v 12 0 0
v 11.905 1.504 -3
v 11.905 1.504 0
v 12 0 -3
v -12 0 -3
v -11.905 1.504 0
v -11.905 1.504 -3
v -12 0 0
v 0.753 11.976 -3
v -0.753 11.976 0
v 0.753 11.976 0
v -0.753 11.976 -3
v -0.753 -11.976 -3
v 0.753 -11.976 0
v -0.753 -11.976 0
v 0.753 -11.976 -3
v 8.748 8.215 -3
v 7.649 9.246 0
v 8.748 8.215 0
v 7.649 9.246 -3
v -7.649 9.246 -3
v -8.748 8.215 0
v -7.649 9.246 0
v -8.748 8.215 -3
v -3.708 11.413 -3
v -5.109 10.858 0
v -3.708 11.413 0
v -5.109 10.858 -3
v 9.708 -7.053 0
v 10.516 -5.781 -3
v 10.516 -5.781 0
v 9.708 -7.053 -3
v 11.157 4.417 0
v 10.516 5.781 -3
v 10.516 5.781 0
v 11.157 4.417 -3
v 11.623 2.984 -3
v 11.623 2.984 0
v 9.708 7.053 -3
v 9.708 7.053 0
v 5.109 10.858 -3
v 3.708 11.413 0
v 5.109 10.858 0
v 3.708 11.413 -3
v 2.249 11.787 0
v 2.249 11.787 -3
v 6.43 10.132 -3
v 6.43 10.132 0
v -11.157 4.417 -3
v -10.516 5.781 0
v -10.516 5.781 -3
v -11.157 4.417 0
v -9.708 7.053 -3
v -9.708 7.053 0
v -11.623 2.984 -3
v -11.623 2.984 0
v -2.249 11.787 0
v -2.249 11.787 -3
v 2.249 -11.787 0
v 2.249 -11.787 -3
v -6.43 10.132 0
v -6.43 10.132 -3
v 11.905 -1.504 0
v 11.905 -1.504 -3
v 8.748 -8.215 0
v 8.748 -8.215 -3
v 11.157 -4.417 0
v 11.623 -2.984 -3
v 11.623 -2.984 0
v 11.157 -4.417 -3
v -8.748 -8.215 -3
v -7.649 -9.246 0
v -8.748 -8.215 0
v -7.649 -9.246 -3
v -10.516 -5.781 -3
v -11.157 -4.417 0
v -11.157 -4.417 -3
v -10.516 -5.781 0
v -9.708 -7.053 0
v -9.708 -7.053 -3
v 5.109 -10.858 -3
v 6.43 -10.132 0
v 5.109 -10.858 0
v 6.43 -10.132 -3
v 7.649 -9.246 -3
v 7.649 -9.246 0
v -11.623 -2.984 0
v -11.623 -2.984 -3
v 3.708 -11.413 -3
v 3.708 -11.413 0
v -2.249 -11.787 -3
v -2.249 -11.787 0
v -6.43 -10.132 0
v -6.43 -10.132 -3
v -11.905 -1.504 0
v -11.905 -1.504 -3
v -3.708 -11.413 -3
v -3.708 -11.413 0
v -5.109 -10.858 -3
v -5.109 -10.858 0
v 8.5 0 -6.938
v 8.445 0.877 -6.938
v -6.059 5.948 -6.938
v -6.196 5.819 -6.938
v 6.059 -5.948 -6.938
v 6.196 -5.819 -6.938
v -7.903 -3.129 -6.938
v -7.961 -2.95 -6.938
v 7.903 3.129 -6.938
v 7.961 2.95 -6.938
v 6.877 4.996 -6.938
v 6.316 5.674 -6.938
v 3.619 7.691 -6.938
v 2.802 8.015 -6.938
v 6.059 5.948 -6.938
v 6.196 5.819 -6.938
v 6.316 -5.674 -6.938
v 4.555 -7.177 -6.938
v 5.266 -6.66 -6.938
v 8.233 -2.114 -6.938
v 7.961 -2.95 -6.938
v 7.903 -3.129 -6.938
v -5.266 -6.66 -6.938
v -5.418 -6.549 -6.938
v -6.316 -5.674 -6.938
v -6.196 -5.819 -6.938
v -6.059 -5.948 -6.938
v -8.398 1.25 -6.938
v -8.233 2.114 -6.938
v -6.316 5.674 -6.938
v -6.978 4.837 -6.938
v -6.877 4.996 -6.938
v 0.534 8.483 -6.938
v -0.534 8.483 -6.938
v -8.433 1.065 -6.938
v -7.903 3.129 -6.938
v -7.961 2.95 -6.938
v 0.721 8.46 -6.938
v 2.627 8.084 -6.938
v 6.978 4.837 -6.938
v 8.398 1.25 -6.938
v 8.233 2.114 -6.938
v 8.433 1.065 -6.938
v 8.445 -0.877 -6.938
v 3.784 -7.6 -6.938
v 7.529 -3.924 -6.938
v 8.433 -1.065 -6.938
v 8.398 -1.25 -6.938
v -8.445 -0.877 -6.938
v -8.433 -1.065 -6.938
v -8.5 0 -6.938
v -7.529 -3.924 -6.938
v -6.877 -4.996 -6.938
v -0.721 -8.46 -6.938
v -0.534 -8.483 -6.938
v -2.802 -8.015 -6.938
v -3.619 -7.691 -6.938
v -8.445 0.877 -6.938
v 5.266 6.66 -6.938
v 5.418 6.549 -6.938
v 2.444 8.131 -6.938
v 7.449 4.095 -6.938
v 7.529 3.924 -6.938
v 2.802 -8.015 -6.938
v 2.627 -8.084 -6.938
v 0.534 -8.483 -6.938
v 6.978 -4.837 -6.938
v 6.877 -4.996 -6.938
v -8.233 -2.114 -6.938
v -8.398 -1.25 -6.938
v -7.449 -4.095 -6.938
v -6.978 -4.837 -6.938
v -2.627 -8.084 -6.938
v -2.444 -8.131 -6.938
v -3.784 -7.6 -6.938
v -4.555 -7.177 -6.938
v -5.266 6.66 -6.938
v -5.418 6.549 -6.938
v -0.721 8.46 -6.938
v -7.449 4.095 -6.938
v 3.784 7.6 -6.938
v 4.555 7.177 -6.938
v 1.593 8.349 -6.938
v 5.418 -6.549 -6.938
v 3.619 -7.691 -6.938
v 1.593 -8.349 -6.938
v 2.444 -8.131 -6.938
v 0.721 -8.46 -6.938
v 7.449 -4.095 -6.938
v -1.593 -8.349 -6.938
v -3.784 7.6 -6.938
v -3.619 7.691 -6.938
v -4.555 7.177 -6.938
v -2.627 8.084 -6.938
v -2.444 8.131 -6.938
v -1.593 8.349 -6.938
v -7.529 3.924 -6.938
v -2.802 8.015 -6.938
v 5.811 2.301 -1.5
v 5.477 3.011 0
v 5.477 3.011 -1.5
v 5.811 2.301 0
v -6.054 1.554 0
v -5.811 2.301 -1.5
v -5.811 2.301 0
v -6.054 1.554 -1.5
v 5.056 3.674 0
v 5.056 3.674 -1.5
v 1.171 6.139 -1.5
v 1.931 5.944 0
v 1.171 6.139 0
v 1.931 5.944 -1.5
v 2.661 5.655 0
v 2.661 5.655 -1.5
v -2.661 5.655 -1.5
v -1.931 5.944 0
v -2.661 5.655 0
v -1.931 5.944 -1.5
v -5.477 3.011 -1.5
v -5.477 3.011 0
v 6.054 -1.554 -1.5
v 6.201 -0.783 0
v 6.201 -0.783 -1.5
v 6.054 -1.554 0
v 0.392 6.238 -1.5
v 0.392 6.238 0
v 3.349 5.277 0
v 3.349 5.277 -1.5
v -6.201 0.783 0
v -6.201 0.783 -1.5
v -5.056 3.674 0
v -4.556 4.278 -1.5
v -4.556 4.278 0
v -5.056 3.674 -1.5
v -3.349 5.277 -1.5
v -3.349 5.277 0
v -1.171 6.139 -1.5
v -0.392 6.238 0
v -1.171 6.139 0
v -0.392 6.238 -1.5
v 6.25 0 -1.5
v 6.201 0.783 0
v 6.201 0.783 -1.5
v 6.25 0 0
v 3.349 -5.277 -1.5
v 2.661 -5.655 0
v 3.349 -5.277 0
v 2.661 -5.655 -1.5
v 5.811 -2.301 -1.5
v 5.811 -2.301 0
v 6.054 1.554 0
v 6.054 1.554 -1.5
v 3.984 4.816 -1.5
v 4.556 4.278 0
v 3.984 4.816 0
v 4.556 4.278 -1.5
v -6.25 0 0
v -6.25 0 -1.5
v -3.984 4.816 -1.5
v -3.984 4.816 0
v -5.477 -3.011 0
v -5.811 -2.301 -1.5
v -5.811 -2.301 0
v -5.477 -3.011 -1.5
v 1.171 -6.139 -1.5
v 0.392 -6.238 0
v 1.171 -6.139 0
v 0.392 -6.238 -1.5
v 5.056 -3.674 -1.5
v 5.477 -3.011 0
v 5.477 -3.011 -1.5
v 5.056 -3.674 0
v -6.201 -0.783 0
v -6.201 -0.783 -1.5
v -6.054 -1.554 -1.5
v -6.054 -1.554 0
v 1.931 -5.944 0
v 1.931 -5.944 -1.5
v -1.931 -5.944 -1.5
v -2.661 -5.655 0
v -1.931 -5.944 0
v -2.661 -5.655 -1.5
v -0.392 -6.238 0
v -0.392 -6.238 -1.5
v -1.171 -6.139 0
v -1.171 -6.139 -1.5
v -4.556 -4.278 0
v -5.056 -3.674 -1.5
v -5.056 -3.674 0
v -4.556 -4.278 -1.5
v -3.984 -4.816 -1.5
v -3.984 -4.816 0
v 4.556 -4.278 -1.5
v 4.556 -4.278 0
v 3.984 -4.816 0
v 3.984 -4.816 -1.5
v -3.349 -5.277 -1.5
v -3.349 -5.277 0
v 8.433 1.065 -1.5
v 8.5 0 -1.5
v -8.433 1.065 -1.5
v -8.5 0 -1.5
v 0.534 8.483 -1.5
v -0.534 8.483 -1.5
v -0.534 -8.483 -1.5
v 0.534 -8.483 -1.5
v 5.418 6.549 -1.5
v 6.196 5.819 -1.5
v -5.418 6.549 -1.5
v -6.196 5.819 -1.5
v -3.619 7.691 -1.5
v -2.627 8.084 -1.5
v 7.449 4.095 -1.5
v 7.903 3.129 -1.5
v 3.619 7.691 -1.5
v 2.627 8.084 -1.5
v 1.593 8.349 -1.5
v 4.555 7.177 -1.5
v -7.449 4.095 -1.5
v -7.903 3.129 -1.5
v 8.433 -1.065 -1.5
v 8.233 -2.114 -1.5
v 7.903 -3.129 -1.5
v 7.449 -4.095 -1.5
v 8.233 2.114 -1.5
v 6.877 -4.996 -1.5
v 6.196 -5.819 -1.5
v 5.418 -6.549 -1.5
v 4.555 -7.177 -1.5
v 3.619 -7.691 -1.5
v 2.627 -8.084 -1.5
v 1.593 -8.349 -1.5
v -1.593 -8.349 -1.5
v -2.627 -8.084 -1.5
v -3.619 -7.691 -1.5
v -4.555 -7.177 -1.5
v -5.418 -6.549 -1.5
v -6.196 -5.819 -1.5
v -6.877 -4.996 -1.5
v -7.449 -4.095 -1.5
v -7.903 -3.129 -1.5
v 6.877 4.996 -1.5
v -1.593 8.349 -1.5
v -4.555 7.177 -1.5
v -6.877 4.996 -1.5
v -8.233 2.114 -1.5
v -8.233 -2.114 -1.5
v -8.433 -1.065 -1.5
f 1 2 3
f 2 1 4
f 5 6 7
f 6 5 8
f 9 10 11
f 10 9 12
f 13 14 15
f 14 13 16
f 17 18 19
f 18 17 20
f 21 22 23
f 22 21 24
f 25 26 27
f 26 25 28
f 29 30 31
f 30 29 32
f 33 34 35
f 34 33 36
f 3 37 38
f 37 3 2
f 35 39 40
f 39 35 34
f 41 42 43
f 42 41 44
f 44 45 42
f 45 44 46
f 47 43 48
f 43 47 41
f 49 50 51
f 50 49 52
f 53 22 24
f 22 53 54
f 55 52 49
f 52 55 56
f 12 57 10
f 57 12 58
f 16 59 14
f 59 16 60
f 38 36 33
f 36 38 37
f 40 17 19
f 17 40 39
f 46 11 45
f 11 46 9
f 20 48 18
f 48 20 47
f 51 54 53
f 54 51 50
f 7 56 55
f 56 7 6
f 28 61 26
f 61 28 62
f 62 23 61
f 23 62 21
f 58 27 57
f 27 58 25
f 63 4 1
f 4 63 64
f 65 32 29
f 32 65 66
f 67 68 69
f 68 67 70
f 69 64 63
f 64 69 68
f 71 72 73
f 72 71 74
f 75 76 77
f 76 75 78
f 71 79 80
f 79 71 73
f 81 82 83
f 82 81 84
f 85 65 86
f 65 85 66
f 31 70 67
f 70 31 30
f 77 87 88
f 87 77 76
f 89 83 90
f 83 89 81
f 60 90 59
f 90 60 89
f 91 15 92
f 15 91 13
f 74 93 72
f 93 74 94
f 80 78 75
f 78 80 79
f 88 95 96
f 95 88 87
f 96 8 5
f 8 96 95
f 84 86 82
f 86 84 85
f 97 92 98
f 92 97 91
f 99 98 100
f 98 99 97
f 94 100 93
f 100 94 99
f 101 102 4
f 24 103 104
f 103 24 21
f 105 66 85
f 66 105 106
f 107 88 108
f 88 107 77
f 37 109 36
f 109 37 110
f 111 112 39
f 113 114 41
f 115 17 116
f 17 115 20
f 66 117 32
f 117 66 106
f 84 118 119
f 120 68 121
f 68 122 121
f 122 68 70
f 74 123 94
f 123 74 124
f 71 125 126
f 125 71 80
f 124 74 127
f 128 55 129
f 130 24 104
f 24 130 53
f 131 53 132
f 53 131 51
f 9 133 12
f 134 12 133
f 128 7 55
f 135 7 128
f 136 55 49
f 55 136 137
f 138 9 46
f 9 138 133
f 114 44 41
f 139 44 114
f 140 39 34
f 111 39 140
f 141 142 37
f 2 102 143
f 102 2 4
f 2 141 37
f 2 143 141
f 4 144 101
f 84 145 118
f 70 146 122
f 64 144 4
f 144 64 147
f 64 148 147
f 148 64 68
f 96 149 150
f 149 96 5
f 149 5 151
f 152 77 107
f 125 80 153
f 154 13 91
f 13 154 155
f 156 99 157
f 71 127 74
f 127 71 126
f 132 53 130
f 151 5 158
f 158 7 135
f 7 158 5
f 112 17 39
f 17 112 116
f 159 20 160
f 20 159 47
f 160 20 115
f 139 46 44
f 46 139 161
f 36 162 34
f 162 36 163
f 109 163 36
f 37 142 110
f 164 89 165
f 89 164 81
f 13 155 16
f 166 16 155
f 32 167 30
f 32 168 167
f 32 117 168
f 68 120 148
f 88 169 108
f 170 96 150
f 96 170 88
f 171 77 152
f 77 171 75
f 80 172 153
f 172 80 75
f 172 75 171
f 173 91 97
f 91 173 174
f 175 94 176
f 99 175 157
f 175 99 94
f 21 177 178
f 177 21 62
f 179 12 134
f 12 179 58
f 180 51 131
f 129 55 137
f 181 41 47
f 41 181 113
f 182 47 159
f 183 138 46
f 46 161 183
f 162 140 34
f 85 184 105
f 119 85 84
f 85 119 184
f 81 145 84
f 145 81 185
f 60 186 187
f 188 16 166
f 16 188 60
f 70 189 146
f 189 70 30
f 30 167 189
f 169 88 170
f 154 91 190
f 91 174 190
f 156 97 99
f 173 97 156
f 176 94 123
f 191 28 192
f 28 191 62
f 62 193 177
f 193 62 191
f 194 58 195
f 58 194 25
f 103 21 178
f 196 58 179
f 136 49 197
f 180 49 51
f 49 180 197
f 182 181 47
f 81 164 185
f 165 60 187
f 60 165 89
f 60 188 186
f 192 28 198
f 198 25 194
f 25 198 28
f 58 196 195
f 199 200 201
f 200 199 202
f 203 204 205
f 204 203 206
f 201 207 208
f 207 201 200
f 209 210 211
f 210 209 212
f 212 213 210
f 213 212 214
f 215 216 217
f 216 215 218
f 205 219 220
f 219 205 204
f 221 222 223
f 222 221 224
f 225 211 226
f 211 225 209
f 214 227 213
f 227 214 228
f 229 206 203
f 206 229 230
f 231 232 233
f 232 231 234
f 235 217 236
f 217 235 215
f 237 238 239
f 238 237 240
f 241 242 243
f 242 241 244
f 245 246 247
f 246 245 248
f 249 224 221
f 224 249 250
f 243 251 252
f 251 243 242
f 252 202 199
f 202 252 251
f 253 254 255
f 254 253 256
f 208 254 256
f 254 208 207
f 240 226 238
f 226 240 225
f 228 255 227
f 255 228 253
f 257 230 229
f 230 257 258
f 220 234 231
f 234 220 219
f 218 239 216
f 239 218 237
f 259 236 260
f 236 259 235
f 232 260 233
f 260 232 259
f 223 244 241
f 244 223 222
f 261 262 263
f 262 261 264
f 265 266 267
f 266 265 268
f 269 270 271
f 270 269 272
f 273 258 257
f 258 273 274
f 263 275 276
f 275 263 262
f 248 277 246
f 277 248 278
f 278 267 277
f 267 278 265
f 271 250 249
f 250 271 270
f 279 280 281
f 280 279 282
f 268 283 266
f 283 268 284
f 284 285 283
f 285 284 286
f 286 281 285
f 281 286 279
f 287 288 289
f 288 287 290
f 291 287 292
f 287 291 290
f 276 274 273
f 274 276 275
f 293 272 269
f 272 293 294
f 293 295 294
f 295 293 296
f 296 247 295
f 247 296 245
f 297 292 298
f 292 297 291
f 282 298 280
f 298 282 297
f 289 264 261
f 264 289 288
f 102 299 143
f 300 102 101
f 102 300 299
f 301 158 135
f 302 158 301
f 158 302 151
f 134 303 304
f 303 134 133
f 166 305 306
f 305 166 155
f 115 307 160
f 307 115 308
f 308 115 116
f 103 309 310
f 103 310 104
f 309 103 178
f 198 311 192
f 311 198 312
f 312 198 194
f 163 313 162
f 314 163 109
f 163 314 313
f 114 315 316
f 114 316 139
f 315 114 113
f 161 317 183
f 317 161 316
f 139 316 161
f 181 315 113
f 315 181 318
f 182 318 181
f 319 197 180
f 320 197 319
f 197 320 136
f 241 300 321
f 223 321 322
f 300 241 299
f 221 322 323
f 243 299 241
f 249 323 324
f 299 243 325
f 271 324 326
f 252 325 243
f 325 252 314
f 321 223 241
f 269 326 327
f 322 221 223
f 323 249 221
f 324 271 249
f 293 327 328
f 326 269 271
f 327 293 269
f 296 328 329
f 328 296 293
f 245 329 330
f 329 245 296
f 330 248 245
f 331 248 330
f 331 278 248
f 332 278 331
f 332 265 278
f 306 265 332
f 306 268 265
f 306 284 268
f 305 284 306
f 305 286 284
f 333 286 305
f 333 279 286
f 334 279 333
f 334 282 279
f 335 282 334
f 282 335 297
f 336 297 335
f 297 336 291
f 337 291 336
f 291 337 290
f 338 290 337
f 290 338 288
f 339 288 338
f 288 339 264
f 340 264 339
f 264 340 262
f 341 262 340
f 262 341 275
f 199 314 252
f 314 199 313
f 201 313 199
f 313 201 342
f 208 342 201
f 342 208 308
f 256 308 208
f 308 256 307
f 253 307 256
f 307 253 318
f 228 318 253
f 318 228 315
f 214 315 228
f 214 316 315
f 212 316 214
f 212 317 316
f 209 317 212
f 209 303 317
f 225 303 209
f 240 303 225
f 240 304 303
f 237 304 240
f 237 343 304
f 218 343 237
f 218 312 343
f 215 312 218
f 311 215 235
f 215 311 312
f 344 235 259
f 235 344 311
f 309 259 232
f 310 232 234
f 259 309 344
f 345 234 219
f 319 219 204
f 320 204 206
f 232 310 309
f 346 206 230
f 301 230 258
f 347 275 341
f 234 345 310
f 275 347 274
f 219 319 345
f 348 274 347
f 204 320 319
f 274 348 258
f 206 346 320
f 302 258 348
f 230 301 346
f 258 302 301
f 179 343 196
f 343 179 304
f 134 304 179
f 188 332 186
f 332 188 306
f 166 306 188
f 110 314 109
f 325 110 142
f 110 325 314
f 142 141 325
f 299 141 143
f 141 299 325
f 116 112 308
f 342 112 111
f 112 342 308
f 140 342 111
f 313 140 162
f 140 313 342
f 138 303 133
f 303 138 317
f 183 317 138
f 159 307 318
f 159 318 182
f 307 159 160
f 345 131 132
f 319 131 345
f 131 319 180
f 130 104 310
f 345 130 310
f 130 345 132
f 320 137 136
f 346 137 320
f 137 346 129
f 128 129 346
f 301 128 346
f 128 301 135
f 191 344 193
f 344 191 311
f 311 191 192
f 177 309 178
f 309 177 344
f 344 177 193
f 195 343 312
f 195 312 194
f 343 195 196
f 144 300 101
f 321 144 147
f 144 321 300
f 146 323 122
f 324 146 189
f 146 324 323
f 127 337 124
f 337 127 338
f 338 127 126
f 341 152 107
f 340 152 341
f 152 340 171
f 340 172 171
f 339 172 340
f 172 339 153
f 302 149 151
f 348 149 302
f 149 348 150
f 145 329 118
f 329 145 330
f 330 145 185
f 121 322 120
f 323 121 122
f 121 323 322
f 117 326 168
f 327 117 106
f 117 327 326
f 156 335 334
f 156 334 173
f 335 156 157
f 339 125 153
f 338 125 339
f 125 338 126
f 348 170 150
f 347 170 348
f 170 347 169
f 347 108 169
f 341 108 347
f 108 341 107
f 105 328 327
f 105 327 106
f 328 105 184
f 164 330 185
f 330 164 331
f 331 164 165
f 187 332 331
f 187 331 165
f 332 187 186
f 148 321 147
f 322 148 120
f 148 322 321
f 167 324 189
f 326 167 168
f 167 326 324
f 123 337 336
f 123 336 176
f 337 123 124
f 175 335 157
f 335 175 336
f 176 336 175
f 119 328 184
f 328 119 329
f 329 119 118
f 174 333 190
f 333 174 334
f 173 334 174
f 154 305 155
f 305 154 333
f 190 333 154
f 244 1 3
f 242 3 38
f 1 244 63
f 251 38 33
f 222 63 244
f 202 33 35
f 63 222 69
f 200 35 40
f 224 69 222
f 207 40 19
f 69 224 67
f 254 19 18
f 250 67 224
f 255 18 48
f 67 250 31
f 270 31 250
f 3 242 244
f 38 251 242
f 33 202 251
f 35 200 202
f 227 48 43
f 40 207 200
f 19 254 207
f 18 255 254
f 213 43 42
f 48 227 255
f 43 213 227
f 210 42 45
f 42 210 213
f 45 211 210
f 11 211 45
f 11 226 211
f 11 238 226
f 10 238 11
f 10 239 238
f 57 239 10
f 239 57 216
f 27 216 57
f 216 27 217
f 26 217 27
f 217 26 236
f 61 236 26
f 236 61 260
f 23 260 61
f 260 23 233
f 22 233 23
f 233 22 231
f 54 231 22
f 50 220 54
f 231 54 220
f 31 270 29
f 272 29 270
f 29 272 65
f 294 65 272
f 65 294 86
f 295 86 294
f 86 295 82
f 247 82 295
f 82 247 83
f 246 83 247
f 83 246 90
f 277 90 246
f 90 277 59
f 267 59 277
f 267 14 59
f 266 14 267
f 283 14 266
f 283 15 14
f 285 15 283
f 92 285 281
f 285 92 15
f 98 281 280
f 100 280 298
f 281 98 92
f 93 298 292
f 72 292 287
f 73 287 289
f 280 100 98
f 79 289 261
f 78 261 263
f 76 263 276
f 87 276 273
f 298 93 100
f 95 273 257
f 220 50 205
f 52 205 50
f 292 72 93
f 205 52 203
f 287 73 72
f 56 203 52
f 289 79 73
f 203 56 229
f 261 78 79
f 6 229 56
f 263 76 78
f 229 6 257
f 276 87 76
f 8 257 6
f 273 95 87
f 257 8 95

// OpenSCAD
$fn = 50;


difference() {
	union() {
		translate(v = [0, 0, -3.0000000000]) {
			cylinder(h = 6, r = 12.0000000000);
		}
		translate(v = [0, 0, 3.0000000000]) {
			cylinder(h = 4.5000000000, r1 = 12.0000000000, r2 = 8.0000000000);
		}
		translate(v = [0, 0, -7.5000000000]) {
			cylinder(h = 4.5000000000, r1 = 8.0000000000, r2 = 12.0000000000);
		}
	}
	union() {
		translate(v = [0, 0, -50.0000000000]) {
			cylinder(h = 100, r = 5);
		}
		translate(v = [0, 0, 4.5000000000]) {
			translate(v = [0, 0, -3.0000000000]) {
				union() {
					difference() {
						cylinder(h = 6, r = 8.5000000000);
						cylinder(h = 6, r = 3.0000000000);
					}
					difference() {
						translate(v = [0, 0, -50]) {
							cylinder(h = 100, r = 6.2500000000);
						}
					}
				}
			}
		}
		translate(v = [0, 0, -4.5000000000]) {
			translate(v = [0, 0, -3.0000000000]) {
				union() {
					difference() {
						cylinder(h = 6, r = 8.5000000000);
						cylinder(h = 6, r = 3.0000000000);
					}
					difference() {
						translate(v = [0, 0, -50]) {
							cylinder(h = 100, r = 6.2500000000);
						}
					}
				}
			}
		}
		translate(v = [-250.0000000000, -250.0000000000, 0]) {
			cube(size = [500, 500, 500]);
		}
		translate(v = [-250.0000000000, -250.0000000000, 0]) {
			cube(size = [500, 500, 500]);
		}
		translate(v = [-250.0000000000, -250.0000000000, 0]) {
			cube(size = [500, 500, 500]);
		}
	}
}
